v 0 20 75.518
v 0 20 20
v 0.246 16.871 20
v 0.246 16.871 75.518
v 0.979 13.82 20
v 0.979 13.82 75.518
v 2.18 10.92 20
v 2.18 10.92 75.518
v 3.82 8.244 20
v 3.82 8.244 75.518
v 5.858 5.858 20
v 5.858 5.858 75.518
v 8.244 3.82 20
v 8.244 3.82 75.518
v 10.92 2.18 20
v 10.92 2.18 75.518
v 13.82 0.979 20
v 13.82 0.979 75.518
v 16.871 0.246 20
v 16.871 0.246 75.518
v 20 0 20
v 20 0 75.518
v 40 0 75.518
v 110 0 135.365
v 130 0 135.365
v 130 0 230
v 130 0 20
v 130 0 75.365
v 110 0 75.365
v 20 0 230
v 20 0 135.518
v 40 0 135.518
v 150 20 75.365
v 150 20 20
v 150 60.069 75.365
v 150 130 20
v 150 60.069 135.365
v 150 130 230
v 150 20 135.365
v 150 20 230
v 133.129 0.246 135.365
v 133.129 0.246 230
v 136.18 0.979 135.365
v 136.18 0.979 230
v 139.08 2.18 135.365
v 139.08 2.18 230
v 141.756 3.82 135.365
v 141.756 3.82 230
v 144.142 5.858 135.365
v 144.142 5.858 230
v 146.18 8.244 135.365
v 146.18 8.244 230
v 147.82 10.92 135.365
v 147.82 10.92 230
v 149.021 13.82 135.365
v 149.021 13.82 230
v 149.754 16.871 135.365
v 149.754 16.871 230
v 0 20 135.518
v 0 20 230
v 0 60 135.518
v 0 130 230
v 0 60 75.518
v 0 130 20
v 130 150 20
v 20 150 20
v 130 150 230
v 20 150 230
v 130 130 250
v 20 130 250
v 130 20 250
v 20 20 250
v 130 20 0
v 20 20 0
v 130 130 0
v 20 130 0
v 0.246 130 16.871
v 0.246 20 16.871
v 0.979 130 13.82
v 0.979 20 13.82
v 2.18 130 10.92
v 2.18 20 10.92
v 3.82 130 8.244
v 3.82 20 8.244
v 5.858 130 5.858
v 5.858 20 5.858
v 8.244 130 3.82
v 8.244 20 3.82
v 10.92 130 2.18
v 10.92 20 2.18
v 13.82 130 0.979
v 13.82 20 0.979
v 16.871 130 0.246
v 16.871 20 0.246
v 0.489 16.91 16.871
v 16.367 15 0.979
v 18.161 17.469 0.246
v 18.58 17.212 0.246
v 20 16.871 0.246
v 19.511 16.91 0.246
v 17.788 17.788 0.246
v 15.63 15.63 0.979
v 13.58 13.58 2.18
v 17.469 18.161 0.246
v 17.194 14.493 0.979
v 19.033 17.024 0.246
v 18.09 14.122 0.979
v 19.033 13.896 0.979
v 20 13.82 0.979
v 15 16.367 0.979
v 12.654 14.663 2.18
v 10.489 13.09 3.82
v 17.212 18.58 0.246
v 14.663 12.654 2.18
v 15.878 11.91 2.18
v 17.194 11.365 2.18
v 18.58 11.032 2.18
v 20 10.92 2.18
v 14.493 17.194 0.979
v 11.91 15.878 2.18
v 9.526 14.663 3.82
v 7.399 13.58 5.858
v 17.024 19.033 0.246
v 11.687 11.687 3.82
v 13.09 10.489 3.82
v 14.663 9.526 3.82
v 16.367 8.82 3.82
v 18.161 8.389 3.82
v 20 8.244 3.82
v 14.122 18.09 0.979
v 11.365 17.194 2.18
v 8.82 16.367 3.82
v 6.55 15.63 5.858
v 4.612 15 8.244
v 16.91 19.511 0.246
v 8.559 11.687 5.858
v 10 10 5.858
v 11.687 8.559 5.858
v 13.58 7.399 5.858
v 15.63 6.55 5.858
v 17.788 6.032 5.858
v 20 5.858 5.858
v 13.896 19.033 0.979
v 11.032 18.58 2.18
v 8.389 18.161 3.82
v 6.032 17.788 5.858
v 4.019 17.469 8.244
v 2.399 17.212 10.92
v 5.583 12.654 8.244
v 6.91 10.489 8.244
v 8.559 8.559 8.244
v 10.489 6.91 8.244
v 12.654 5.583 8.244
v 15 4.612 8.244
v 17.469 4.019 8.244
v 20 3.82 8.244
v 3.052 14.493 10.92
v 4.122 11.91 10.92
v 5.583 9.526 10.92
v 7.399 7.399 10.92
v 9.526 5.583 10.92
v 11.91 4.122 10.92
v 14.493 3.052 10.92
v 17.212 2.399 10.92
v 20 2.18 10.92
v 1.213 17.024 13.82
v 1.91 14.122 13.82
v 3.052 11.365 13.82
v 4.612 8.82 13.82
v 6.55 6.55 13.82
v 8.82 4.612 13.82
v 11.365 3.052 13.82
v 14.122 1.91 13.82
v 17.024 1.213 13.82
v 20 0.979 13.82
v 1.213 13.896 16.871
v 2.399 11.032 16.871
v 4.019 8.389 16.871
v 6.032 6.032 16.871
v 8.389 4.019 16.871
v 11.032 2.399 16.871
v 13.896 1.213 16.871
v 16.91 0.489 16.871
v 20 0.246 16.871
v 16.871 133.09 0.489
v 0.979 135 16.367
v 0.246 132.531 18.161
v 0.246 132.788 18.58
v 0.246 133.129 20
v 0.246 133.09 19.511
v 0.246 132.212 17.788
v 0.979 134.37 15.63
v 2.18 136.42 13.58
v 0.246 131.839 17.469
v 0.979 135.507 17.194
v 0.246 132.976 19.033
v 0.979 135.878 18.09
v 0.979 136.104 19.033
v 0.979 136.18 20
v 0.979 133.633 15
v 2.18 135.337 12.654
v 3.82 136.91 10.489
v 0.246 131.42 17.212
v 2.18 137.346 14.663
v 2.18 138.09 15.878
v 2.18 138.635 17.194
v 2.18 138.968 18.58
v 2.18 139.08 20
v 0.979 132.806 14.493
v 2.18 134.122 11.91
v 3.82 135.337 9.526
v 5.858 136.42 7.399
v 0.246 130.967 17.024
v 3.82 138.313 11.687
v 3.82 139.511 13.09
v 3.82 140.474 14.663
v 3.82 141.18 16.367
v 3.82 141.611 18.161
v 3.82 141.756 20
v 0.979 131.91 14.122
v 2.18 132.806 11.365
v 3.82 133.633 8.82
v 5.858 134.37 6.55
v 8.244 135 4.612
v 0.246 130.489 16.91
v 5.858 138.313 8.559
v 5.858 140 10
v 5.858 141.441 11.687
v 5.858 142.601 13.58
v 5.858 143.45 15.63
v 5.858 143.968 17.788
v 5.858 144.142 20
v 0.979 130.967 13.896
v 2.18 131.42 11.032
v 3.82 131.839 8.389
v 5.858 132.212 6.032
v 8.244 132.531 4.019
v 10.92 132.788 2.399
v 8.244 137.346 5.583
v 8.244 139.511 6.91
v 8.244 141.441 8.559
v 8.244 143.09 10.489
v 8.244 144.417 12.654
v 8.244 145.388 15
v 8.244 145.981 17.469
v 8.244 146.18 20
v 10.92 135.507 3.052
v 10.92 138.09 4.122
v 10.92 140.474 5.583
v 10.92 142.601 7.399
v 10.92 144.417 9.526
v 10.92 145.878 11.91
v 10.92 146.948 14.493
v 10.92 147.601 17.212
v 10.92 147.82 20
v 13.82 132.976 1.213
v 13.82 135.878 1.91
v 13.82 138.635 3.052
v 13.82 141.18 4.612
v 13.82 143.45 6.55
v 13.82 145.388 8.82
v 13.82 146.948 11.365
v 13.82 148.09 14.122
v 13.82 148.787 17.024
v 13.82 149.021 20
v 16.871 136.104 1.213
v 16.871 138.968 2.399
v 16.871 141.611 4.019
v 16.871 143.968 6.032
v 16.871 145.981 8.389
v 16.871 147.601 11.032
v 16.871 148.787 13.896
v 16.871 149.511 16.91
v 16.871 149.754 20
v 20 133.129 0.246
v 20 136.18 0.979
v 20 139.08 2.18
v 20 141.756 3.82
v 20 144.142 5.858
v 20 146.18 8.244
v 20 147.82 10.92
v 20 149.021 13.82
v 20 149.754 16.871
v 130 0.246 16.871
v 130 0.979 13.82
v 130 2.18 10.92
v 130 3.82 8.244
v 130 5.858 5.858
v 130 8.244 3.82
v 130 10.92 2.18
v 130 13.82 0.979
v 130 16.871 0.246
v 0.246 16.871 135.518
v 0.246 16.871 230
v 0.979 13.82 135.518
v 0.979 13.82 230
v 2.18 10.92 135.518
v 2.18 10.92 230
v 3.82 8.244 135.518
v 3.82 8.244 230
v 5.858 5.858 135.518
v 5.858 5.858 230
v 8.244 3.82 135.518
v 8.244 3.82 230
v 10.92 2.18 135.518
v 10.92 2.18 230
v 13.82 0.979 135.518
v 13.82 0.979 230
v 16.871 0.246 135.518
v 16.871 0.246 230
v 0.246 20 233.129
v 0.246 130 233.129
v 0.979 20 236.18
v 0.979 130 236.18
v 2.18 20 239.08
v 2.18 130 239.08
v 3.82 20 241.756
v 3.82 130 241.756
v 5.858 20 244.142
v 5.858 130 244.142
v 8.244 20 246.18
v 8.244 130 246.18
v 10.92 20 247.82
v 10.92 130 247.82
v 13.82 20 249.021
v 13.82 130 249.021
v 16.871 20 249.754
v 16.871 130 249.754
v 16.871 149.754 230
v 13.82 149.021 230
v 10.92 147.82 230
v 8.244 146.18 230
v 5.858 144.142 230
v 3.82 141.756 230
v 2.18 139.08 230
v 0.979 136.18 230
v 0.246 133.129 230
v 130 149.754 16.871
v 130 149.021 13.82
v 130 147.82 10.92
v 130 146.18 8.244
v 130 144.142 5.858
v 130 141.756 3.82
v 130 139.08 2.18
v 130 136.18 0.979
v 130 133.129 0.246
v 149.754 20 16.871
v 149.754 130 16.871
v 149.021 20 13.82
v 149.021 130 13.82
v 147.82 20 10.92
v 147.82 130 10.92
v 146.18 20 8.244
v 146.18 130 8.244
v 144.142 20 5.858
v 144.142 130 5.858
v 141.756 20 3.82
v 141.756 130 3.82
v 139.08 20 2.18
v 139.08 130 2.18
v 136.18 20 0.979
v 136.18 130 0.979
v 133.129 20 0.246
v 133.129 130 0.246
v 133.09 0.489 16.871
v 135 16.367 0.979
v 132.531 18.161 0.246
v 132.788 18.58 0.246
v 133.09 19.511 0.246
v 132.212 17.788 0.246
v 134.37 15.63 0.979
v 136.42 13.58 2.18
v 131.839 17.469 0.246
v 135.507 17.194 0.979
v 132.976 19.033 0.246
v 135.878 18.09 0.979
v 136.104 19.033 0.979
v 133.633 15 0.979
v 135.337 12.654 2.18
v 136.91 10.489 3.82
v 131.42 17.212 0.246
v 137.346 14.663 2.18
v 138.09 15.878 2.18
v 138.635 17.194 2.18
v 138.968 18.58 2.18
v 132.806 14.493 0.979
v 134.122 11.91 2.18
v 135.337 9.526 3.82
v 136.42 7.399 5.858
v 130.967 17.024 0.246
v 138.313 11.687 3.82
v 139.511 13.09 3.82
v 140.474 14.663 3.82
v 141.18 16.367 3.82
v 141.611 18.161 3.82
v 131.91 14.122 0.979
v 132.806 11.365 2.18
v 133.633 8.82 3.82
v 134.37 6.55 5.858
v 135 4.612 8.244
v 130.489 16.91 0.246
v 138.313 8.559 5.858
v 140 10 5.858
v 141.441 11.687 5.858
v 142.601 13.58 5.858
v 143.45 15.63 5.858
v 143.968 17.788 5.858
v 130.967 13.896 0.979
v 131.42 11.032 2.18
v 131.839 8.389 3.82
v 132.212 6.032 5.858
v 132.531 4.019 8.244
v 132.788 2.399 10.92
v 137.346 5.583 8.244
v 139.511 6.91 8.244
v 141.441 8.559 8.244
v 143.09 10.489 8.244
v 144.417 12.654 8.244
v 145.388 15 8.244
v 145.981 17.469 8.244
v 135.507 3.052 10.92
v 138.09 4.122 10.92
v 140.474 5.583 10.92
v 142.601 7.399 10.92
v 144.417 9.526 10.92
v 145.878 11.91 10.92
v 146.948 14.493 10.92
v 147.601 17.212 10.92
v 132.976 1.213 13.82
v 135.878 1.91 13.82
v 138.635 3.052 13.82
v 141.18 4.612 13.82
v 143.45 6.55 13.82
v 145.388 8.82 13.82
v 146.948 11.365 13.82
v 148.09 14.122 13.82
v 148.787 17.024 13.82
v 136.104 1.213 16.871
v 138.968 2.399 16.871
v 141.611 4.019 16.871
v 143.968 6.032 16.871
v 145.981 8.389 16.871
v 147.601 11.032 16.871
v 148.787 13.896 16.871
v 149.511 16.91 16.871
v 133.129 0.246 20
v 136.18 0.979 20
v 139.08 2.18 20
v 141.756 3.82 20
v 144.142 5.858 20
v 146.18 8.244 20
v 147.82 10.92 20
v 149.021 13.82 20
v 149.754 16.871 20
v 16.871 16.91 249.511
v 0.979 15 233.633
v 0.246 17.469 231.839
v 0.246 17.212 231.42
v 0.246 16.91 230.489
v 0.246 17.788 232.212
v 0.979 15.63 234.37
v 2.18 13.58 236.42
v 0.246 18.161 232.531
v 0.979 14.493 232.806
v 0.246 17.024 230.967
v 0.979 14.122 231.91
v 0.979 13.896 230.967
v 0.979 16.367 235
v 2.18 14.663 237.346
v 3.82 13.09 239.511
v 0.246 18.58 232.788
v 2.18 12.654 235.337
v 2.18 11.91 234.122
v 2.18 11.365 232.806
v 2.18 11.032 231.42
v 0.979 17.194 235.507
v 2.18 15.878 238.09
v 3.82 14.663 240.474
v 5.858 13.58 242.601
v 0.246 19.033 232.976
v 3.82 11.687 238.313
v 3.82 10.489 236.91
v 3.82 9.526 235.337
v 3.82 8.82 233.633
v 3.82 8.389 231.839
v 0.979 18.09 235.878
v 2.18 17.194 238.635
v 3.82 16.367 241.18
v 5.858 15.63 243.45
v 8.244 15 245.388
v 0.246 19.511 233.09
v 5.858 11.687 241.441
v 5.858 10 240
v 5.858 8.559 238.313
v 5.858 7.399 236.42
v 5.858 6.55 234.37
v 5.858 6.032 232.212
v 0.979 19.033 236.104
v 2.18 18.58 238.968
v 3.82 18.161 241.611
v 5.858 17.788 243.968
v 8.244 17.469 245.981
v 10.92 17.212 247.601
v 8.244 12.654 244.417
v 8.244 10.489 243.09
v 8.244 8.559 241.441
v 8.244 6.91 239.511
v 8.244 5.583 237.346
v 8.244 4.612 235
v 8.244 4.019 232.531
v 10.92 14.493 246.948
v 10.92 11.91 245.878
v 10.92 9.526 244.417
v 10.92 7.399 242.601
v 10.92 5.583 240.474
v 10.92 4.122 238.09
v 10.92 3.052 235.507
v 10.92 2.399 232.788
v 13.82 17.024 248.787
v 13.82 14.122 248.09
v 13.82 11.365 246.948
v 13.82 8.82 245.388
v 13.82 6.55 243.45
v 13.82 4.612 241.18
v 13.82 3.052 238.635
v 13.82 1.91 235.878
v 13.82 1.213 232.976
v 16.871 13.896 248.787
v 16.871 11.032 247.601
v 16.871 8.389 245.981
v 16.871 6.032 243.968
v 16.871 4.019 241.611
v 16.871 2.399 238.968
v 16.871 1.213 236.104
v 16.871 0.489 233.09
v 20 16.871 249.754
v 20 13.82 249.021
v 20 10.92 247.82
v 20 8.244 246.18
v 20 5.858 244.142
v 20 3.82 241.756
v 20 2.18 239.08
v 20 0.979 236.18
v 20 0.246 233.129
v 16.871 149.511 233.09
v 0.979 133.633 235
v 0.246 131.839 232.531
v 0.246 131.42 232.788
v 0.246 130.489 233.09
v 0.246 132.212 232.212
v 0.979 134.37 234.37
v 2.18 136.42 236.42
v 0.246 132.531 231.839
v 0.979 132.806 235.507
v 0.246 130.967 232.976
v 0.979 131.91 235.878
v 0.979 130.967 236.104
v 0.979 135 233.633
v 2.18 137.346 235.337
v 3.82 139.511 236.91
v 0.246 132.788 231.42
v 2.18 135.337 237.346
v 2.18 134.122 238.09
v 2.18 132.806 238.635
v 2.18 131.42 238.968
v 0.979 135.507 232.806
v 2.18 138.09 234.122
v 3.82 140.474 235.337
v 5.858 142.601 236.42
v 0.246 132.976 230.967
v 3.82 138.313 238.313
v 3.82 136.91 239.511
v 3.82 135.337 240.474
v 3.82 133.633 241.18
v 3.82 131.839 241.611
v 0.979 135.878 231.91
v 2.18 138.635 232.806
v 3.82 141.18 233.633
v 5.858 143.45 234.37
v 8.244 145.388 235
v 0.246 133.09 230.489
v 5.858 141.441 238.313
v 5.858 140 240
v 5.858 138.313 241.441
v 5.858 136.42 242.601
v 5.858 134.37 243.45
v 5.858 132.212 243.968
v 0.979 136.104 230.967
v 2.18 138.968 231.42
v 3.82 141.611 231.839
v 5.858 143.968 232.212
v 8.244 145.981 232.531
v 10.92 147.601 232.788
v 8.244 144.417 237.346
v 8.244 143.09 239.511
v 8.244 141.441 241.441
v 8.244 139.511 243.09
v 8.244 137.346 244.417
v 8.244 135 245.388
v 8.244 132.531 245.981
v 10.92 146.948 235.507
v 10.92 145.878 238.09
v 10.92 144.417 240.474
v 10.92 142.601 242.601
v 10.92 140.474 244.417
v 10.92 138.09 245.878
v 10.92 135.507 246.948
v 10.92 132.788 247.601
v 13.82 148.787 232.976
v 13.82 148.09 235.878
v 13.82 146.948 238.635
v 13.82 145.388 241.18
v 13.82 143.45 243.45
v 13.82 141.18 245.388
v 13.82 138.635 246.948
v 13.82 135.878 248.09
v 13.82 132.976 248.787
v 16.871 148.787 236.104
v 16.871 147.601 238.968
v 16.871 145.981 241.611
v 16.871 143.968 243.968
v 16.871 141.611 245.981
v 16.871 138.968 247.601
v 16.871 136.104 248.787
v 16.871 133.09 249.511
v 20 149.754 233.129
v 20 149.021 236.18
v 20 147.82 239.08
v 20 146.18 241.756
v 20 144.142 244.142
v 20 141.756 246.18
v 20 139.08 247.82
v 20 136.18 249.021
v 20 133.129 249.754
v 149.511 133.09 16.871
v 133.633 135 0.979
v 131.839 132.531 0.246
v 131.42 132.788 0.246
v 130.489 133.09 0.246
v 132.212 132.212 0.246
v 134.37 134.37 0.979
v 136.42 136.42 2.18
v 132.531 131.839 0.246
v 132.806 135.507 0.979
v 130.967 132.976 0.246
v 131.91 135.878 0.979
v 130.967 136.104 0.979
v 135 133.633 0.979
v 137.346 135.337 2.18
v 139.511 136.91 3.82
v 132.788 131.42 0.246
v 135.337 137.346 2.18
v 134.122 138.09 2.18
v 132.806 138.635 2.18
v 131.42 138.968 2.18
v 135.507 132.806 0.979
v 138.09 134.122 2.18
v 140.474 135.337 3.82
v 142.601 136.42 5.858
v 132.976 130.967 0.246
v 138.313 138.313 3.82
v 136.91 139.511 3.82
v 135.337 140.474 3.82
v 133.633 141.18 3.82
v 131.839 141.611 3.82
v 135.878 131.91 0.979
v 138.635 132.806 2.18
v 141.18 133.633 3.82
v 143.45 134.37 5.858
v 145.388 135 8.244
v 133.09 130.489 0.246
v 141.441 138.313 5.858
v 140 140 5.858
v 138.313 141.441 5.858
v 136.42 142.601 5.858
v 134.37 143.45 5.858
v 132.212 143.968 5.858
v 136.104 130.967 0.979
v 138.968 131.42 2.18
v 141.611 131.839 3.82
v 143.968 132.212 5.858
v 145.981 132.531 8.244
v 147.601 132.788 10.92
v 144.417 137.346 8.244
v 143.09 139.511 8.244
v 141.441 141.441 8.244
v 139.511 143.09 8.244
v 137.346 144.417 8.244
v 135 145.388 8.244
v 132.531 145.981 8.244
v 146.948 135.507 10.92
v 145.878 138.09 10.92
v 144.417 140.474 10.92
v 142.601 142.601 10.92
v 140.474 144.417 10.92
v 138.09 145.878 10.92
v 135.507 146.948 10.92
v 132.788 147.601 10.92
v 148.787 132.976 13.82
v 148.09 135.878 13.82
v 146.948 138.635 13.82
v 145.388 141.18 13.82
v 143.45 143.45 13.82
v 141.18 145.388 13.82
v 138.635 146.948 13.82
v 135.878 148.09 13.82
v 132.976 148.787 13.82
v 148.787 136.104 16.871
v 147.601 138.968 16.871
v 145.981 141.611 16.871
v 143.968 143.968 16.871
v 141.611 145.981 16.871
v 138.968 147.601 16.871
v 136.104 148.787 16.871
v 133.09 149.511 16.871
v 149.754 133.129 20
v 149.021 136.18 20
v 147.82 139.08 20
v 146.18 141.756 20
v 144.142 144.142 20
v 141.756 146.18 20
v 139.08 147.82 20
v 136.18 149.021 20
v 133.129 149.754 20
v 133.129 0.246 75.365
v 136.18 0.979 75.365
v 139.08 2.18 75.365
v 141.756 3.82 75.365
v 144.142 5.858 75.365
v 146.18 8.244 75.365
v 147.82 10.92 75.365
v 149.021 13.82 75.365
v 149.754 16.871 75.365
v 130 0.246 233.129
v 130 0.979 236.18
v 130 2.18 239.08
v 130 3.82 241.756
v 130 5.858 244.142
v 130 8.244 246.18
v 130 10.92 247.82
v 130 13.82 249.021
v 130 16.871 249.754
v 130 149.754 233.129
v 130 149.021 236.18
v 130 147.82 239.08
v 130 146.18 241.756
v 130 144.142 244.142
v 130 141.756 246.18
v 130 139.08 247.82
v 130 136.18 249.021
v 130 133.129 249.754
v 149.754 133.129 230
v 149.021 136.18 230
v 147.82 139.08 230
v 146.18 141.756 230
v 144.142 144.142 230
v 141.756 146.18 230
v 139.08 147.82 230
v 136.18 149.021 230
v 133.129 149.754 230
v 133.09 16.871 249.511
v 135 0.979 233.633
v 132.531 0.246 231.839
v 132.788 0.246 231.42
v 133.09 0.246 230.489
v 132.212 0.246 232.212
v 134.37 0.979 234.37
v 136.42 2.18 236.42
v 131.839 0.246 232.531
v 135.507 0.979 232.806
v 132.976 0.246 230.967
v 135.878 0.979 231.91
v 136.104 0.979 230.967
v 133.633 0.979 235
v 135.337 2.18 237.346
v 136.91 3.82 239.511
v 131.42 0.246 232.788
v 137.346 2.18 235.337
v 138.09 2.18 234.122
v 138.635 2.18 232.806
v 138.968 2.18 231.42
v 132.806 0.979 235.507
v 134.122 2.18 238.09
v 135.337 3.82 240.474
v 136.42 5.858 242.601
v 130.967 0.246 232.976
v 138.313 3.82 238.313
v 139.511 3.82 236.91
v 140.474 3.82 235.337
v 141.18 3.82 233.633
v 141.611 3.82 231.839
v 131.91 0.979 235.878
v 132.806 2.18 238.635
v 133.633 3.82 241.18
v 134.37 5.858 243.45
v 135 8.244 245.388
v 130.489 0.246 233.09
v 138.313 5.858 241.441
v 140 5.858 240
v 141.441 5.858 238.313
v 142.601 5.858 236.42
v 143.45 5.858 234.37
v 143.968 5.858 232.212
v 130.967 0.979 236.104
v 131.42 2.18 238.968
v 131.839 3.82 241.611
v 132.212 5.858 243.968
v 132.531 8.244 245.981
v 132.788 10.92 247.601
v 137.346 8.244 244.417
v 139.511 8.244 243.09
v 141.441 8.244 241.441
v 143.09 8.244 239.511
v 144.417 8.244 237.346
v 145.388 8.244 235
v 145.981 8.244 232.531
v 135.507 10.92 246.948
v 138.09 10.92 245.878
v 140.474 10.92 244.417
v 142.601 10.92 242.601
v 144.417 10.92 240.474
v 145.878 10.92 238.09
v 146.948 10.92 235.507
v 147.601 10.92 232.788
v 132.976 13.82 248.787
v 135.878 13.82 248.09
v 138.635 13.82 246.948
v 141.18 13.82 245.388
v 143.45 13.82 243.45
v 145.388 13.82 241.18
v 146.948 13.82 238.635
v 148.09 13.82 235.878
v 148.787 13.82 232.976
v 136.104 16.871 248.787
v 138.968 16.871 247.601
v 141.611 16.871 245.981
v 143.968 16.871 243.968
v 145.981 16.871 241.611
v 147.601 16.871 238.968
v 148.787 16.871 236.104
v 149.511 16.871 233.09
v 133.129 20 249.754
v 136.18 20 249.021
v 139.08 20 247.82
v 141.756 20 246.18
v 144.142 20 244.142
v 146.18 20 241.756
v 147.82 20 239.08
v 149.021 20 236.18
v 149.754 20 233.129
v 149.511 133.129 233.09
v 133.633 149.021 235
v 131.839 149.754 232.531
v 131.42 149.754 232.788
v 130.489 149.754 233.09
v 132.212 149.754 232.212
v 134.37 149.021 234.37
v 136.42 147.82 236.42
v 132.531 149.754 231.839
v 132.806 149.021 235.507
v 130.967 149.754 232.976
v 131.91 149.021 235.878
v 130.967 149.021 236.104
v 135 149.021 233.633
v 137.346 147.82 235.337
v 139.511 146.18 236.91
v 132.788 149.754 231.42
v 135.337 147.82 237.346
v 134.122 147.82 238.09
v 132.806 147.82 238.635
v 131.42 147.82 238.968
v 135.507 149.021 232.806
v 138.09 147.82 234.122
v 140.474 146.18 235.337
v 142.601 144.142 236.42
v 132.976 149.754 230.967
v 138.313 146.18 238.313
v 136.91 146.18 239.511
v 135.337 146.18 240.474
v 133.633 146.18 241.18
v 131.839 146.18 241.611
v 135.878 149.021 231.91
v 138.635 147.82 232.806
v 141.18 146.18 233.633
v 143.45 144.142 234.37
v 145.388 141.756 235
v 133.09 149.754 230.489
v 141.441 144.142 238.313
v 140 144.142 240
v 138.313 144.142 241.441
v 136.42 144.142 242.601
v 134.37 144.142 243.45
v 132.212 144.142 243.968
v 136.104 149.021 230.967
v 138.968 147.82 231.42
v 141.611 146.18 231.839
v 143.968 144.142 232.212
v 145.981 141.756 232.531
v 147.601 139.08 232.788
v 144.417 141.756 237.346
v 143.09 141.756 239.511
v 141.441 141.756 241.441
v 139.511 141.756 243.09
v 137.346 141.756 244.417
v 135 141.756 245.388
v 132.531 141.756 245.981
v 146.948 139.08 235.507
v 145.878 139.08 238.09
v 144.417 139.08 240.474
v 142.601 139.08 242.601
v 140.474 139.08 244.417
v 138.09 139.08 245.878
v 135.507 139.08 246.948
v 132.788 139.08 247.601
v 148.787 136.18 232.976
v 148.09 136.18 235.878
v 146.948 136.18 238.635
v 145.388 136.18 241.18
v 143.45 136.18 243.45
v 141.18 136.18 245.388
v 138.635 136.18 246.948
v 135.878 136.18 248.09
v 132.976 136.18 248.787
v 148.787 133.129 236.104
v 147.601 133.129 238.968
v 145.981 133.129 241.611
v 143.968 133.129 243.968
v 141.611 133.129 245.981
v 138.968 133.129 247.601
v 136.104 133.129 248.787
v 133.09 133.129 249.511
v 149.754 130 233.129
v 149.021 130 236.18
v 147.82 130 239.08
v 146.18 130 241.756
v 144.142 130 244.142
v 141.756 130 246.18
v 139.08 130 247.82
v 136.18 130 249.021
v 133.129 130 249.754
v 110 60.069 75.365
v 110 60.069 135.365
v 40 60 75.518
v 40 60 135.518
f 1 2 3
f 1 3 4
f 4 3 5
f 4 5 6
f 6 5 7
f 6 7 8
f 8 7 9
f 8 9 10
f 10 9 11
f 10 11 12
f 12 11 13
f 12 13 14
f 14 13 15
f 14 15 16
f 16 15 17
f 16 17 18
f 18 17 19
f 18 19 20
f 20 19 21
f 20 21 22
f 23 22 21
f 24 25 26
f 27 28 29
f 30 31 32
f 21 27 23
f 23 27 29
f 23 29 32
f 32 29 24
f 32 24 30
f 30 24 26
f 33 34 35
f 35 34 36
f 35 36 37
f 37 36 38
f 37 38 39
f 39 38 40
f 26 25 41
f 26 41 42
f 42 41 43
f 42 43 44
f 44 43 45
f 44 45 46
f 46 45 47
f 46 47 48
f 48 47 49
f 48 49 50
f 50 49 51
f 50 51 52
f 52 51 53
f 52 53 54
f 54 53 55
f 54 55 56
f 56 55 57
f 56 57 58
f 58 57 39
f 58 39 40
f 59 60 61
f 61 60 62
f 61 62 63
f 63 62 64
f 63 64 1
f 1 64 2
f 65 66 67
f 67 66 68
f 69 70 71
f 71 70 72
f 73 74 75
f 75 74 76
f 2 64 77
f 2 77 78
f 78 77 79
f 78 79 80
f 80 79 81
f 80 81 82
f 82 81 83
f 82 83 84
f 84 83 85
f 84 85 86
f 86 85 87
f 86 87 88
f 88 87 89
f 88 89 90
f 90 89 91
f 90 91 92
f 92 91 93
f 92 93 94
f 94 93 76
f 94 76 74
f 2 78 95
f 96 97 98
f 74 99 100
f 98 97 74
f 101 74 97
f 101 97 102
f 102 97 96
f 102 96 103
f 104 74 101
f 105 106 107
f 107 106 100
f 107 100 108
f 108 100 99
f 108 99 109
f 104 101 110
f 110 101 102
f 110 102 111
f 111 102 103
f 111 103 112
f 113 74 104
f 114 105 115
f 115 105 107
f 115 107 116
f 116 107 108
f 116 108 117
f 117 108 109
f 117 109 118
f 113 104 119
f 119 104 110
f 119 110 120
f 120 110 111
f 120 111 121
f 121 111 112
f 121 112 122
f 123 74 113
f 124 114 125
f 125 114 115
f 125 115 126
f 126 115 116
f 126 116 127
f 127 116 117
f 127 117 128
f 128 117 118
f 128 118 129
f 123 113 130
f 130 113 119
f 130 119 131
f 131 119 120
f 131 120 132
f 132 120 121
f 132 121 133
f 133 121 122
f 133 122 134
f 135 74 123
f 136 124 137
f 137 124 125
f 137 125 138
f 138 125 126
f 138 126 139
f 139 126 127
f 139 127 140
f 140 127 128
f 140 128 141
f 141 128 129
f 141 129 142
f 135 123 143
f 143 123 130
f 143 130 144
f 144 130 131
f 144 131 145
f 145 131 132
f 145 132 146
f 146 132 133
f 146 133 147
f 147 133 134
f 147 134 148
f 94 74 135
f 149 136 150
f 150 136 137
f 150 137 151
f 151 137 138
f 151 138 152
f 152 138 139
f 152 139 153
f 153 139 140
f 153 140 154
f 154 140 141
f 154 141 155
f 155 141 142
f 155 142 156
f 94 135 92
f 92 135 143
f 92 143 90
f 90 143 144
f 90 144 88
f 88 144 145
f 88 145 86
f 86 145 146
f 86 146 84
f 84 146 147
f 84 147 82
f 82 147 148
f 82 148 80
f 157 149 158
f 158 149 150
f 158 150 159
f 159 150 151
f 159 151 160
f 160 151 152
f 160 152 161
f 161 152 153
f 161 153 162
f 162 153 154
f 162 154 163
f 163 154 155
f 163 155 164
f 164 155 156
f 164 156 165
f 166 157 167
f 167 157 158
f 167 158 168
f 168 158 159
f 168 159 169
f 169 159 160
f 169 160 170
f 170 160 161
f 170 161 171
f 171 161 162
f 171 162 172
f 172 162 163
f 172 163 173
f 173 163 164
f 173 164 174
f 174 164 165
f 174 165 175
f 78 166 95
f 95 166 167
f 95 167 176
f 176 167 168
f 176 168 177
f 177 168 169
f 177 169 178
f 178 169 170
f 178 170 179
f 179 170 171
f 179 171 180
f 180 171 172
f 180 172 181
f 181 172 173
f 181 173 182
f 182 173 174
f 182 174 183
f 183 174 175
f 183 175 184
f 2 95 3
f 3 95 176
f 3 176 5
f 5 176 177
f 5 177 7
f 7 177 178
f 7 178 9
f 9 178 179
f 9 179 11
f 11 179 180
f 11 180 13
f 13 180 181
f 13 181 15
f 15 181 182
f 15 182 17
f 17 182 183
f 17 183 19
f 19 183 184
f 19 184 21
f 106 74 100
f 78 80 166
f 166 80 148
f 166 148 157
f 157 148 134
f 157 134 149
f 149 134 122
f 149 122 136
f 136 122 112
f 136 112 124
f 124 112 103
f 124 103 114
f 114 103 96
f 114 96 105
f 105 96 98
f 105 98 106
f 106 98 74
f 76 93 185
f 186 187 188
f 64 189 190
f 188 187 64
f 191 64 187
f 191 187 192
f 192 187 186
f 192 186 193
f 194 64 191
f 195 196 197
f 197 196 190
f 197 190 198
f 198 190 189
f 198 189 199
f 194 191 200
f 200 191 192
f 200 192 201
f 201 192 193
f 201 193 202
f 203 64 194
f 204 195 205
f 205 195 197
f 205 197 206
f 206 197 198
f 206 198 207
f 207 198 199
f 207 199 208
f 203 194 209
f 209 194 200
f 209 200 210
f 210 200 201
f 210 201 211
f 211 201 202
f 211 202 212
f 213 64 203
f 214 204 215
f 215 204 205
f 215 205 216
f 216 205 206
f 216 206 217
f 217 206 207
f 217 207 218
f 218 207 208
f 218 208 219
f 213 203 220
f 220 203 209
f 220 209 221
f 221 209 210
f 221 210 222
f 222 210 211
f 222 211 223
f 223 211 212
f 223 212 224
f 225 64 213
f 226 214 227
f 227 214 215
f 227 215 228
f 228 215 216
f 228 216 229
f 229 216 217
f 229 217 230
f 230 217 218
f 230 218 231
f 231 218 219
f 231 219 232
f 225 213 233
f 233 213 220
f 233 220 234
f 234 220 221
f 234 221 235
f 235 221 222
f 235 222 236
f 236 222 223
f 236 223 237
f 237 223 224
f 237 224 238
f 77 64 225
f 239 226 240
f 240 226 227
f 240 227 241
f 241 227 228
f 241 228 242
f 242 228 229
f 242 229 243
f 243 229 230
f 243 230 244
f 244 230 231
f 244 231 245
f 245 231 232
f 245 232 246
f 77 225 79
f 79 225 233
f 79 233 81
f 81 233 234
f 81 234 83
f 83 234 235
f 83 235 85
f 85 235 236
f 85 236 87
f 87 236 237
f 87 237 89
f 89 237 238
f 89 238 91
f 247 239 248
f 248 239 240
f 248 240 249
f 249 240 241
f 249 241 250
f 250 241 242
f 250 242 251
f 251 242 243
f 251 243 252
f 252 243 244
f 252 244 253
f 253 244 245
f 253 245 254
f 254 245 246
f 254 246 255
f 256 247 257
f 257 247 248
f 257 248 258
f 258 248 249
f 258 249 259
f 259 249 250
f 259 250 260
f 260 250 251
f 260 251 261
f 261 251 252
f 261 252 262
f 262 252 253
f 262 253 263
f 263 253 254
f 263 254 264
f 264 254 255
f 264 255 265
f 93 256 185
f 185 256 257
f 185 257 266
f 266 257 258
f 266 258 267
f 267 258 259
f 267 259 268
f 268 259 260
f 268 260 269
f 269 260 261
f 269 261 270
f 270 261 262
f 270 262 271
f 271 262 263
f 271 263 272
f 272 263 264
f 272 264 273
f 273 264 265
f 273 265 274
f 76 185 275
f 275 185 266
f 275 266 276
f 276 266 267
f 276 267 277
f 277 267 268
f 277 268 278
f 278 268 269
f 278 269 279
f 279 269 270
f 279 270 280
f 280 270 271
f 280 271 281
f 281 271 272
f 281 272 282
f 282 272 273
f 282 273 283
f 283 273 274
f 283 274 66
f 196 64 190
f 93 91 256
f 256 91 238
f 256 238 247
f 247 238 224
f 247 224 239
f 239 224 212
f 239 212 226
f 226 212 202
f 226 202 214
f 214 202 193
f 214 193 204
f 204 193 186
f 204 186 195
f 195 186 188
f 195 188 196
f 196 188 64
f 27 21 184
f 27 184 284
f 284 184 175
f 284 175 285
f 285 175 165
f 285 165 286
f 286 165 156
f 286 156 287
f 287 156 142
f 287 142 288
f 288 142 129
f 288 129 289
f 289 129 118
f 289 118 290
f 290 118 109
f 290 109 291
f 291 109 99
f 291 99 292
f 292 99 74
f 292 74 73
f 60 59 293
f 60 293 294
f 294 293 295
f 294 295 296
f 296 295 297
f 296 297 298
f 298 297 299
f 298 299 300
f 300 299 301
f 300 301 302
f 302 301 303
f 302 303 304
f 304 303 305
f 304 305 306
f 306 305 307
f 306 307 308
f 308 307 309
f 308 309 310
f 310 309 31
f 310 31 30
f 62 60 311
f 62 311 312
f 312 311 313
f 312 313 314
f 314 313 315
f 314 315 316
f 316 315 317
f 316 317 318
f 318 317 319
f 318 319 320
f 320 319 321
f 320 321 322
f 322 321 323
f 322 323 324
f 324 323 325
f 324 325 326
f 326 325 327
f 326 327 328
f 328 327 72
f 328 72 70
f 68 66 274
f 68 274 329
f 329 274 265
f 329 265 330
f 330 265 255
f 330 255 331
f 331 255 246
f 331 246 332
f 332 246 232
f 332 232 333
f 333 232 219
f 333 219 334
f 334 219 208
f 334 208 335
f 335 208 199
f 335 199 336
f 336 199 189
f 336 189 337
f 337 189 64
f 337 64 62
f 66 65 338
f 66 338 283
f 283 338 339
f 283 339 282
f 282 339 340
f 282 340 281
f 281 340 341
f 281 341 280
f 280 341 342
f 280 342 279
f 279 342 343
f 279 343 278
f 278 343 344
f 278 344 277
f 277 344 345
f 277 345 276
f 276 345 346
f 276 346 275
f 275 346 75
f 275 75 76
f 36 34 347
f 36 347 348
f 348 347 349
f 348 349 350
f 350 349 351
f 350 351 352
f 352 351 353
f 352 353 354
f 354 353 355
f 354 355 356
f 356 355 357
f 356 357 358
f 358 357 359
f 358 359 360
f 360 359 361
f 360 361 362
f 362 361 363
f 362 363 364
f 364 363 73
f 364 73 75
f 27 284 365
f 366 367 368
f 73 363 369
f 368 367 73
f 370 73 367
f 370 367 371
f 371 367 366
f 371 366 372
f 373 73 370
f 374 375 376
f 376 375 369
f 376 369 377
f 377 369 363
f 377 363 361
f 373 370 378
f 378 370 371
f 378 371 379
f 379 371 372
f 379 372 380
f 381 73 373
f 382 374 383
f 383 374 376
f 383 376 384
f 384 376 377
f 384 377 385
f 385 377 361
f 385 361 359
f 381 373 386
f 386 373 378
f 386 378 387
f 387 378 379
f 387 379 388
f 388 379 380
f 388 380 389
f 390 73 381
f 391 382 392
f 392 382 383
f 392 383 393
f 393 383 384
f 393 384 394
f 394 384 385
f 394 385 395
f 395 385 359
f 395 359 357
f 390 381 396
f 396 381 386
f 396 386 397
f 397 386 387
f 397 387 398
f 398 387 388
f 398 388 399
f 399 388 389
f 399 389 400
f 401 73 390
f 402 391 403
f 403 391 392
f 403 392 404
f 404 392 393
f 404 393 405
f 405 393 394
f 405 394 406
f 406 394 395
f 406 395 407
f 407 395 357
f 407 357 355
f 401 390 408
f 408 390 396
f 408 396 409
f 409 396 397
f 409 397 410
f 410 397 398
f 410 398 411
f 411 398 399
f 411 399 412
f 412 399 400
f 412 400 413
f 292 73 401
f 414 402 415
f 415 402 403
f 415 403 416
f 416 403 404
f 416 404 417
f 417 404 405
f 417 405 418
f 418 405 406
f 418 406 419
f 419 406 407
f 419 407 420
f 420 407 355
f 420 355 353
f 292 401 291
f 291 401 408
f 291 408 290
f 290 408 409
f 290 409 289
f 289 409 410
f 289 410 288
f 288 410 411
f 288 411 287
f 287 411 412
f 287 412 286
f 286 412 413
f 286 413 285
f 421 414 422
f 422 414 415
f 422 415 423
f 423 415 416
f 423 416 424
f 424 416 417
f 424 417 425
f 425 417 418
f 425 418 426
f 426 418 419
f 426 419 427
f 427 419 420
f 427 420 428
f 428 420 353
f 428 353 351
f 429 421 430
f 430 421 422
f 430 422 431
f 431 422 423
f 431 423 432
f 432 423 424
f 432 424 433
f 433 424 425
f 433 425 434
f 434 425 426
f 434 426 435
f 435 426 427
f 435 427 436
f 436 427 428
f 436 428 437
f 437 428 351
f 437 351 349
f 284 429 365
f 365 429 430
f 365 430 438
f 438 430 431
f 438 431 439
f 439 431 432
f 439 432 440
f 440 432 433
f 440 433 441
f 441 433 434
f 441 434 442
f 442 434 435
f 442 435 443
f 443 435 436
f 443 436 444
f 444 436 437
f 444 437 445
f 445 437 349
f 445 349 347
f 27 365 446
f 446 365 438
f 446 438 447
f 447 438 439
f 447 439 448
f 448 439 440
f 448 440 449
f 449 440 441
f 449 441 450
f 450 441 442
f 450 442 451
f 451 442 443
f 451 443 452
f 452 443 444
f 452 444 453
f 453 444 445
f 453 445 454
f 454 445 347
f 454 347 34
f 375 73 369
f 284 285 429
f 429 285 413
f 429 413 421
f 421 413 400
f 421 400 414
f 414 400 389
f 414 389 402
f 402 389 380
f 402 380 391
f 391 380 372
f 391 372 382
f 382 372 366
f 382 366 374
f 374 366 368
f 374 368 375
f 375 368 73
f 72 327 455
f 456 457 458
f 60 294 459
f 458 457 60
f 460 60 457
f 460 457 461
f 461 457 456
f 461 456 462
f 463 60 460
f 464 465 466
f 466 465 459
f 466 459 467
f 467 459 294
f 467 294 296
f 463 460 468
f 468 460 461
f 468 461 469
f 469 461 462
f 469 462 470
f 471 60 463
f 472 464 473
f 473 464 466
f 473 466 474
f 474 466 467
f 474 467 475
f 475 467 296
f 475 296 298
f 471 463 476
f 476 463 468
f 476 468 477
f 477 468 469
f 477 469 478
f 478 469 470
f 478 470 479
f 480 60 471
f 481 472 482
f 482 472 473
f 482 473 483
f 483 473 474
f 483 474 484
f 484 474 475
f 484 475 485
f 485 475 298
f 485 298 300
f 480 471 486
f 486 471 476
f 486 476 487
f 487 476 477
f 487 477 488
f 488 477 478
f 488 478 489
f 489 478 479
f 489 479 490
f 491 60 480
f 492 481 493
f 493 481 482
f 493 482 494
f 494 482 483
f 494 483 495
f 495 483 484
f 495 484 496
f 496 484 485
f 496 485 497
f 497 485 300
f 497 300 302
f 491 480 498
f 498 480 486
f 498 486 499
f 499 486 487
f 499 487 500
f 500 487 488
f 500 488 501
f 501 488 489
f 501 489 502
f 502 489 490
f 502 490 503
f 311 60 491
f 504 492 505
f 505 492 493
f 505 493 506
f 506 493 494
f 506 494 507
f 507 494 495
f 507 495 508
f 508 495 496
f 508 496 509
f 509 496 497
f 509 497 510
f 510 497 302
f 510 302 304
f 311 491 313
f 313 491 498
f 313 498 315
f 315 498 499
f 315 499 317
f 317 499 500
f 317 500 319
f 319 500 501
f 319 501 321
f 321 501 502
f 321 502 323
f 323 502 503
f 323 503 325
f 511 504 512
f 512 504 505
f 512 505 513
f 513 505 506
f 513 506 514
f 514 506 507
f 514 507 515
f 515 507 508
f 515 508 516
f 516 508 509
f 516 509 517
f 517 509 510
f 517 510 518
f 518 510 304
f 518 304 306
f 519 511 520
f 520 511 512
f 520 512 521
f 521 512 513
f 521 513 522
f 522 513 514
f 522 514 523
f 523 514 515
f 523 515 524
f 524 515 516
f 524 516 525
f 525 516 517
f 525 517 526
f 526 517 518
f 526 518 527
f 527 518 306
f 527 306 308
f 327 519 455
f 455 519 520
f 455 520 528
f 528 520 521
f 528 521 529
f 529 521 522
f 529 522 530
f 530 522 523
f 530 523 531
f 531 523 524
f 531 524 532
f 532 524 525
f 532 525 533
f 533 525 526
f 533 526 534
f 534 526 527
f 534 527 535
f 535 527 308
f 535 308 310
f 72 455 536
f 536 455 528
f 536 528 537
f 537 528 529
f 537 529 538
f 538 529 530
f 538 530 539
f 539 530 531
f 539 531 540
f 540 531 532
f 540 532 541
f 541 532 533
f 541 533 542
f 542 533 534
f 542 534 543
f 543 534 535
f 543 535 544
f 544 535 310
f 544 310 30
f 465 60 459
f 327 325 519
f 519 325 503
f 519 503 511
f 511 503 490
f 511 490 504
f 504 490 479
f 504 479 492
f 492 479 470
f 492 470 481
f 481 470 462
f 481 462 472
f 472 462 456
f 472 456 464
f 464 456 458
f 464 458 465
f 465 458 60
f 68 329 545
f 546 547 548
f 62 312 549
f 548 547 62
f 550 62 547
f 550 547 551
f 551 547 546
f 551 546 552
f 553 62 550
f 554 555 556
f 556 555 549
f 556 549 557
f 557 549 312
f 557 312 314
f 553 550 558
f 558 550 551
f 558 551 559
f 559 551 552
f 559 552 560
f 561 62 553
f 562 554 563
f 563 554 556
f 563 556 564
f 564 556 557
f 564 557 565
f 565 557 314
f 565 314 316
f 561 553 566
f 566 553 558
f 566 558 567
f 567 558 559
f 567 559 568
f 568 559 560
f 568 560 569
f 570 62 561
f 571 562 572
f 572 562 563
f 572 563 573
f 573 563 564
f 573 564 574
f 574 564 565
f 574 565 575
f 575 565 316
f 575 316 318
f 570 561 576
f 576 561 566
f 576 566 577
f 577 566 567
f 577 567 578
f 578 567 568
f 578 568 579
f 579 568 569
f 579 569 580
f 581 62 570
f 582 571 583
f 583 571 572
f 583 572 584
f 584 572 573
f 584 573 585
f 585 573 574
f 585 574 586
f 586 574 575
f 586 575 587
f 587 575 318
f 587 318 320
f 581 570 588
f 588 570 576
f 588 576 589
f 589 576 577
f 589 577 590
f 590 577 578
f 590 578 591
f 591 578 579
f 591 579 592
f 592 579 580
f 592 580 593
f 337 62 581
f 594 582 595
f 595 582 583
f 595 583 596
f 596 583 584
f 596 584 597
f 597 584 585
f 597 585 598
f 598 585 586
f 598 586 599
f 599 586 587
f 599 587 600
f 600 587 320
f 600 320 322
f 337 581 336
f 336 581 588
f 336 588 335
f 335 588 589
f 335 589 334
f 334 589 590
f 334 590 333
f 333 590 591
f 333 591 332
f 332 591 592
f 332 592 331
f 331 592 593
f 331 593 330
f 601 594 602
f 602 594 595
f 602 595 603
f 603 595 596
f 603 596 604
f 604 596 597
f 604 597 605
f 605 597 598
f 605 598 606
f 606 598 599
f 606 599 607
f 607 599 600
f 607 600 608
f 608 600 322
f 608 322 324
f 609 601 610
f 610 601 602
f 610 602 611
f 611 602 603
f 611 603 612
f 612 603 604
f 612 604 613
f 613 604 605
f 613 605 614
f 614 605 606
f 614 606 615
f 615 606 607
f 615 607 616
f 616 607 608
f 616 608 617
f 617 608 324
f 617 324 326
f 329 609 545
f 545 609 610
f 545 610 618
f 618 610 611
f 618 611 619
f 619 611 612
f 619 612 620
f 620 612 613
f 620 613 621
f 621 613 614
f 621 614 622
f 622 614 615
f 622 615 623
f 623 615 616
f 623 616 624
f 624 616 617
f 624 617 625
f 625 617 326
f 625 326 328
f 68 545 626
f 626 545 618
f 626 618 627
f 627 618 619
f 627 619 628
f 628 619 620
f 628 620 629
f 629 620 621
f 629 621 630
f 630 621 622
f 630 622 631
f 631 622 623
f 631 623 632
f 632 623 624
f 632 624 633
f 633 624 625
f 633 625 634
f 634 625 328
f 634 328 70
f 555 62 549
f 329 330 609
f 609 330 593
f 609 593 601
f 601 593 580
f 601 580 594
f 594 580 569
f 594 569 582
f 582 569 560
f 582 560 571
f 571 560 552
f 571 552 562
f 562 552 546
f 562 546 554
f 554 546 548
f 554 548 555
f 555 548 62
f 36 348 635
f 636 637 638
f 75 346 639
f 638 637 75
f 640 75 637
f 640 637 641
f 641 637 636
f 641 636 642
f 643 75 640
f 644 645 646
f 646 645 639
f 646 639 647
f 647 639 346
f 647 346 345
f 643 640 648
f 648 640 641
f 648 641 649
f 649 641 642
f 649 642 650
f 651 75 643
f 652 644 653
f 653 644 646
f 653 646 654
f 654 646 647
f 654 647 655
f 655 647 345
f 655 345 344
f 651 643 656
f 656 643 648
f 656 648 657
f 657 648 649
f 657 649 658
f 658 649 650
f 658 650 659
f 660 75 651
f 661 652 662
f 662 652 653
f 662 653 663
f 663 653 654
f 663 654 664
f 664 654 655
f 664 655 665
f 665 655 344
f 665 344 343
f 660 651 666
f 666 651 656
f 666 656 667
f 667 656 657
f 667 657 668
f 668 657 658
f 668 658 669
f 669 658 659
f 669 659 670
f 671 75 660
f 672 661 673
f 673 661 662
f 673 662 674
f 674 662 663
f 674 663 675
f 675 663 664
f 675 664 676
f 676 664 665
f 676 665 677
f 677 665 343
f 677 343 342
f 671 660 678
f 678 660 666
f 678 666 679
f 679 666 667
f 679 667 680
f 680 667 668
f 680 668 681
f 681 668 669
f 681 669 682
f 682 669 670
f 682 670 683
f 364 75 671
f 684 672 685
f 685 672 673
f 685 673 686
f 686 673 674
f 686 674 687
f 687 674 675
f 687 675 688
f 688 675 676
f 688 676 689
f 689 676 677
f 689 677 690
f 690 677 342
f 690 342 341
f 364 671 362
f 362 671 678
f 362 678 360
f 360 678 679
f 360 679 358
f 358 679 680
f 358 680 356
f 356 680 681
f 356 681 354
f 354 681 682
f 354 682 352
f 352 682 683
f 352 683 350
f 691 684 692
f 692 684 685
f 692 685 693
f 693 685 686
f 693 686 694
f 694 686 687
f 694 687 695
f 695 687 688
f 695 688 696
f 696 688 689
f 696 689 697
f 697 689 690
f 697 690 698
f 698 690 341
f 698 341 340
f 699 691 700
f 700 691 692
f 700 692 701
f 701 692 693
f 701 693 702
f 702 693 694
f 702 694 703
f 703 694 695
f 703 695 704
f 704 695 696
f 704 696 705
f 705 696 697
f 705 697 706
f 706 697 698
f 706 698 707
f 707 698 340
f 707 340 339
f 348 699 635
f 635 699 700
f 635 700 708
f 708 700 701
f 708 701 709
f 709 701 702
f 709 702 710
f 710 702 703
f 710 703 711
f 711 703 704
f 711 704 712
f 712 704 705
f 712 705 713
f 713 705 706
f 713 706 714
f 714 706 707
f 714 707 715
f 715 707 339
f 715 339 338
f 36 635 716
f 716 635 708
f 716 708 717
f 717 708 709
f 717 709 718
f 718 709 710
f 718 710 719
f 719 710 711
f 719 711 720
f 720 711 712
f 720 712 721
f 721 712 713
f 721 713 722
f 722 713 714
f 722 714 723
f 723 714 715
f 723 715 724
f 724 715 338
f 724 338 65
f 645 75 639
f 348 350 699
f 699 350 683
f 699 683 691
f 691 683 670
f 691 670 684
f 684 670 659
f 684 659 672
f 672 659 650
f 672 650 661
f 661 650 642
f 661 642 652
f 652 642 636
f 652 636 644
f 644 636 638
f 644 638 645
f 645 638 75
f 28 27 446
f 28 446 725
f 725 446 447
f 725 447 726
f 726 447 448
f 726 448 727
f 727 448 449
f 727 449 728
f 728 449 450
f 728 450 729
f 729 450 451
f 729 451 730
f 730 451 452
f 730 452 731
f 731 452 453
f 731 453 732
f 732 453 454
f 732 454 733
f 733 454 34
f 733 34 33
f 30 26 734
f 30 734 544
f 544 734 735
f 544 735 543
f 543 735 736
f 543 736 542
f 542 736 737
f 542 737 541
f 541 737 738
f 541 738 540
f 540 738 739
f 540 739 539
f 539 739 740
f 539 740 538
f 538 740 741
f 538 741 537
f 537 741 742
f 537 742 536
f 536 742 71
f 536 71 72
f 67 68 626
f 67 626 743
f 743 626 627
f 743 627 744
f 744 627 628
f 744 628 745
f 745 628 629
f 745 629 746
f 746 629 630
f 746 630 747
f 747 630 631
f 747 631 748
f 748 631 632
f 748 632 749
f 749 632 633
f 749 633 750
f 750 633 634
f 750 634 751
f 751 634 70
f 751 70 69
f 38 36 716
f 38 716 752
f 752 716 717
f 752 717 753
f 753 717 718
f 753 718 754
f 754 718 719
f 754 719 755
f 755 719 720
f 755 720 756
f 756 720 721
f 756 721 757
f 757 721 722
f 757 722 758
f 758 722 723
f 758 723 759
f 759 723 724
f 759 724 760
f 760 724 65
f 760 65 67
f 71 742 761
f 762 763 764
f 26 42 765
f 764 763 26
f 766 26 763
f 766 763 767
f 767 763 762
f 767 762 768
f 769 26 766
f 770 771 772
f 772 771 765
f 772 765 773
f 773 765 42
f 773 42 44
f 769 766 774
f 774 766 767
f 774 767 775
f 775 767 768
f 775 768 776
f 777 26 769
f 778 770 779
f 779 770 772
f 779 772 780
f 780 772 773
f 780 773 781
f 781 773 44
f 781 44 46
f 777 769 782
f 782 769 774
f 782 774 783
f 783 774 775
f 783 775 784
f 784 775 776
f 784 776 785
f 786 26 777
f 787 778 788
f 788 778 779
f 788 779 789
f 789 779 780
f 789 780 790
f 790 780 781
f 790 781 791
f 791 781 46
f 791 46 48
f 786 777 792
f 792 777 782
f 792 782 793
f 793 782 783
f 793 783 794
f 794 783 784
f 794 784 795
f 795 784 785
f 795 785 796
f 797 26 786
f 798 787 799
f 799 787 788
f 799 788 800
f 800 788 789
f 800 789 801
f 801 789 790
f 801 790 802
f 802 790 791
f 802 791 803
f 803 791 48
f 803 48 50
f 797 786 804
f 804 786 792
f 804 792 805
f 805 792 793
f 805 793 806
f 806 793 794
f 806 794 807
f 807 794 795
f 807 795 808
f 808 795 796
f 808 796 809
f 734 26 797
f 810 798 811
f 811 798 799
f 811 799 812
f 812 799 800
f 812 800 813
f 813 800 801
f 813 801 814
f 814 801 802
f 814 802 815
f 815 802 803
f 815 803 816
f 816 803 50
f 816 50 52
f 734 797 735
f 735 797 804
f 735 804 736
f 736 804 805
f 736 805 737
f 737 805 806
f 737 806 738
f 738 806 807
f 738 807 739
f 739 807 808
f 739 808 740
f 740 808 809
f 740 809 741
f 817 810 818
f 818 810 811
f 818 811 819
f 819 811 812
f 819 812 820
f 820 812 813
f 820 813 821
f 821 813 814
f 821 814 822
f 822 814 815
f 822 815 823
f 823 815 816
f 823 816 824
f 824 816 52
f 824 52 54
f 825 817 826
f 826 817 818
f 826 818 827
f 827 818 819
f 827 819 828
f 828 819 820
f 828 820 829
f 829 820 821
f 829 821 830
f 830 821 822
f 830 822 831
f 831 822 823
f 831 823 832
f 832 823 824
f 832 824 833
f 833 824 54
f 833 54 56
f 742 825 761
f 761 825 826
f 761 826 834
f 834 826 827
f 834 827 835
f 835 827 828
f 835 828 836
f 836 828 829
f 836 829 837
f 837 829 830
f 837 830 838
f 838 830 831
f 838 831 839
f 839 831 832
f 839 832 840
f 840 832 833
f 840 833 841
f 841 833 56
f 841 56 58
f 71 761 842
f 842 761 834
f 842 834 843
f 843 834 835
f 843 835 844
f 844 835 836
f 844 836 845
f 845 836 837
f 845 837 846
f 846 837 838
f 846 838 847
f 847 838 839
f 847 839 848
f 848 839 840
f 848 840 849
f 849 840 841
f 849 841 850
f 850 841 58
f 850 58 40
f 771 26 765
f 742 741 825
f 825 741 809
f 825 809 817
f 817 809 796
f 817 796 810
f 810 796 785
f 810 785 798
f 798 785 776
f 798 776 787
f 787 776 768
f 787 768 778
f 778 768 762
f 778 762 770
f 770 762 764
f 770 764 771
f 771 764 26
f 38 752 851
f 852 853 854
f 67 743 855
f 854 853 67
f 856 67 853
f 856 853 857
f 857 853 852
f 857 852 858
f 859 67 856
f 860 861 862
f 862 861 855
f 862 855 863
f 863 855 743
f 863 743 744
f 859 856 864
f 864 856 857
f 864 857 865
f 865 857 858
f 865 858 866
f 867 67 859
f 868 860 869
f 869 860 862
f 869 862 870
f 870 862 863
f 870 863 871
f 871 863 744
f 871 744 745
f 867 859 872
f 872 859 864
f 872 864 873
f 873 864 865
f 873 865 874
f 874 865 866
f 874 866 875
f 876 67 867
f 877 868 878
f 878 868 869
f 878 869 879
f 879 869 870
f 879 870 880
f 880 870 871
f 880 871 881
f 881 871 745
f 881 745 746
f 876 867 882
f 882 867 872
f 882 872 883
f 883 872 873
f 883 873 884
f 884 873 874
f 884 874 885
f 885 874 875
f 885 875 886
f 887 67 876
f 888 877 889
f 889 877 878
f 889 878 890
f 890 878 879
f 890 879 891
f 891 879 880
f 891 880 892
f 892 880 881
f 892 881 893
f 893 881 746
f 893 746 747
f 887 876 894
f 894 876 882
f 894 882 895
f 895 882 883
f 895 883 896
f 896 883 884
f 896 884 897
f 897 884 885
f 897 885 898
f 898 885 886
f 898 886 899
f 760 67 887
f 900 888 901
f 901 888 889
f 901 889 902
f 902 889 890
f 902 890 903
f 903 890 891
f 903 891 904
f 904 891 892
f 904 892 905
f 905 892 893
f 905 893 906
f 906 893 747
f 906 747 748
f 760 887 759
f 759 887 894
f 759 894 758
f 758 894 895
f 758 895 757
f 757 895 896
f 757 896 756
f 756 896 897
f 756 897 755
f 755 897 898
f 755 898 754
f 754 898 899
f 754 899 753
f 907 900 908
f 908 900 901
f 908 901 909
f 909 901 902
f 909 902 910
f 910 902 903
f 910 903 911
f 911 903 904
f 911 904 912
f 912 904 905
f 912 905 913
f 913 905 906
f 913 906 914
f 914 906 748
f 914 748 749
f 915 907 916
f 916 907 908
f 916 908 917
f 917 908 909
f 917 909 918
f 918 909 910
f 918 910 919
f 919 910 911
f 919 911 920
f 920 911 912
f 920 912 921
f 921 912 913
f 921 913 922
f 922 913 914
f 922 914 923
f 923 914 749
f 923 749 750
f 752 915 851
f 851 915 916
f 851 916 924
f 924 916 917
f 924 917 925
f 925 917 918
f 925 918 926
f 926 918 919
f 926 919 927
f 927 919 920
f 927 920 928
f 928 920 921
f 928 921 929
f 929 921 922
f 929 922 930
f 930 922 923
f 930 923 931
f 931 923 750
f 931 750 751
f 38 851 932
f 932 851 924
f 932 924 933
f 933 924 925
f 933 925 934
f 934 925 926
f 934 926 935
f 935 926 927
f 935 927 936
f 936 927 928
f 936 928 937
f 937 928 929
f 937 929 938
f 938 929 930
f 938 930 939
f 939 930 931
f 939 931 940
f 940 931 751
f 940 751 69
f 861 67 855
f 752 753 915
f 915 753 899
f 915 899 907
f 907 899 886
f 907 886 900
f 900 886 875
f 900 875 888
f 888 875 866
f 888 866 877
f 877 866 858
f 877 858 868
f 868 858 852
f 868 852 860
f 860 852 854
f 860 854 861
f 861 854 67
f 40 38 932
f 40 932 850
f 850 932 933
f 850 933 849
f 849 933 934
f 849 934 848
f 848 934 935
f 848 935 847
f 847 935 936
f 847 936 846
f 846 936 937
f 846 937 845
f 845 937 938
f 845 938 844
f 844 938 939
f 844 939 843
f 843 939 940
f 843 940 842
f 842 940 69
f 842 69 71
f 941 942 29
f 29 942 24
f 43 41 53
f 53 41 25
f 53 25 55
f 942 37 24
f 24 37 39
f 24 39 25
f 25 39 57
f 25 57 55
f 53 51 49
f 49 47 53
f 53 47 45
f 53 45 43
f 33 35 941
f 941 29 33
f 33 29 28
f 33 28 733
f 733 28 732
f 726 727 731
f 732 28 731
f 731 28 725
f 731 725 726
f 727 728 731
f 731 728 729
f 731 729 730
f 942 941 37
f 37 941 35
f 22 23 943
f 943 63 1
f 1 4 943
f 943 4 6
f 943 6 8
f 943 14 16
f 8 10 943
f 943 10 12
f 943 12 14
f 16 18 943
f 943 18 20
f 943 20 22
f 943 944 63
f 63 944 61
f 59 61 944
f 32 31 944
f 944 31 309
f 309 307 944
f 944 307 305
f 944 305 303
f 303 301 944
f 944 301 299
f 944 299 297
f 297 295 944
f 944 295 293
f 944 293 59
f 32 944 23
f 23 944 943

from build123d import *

# Parameters (mm, degrees)
ESQUISSE1_W             = 150
ESQUISSE1_H             = 150
BOSS_EXTRU_1_DEPTH      = 250
CONG_1_R                = 20
ESQUISSE2_W             = 60
ESQUISSE2_H             = 80
ENL_V_MAT_EXTRU_1_DEPTH = 40
ESQUISSE4_W             = 60
ESQUISSE4_H             = 60
ENL_V_MAT_EXTRU_2_DEPTH = 40


with BuildPart() as part:
    # Esquisse1 → Boss.-Extru.1 (new body)
    with BuildSketch(Plane.XY):
        with Locations((75, 75)):
            Rectangle(ESQUISSE1_W, ESQUISSE1_H)
    extrude(amount=BOSS_EXTRU_1_DEPTH)

    # Congé1
    cong_1_edges = [part.edges().sort_by_distance(p)[0] for p in [
        (150, 75, 250),
        (75, 150, 250),
        (0, 75, 250),
        (75, 150, 0),
        (150, 75, 0),
        (75, 0, 0),
        (0, 75, 0),
        (0, 150, 125),
        (150, 150, 125),
        (150, 0, 125),
        (0, 0, 125),
        (75, 0, 250),
    ]]
    fillet(cong_1_edges, radius=CONG_1_R)

    # Esquisse2 → Enlèv. mat.-Extru.1 (cut)
    with BuildSketch(Plane(origin=(150, 0, 0), x_dir=(0, 0, -1), z_dir=(1, 0, 0))):
        with Locations((-105.364762055, 20.069300744)):
            Rectangle(ESQUISSE2_W, ESQUISSE2_H)
    extrude(amount=-ENL_V_MAT_EXTRU_1_DEPTH, mode=Mode.SUBTRACT)

    # Esquisse4 → Enlèv. mat.-Extru.2 (cut)
    with BuildSketch(Plane.ZY):
        with Locations((105.517882432, 30)):
            Rectangle(ESQUISSE4_W, ESQUISSE4_H)
    extrude(amount=-ENL_V_MAT_EXTRU_2_DEPTH, mode=Mode.SUBTRACT)


solid = part.part
